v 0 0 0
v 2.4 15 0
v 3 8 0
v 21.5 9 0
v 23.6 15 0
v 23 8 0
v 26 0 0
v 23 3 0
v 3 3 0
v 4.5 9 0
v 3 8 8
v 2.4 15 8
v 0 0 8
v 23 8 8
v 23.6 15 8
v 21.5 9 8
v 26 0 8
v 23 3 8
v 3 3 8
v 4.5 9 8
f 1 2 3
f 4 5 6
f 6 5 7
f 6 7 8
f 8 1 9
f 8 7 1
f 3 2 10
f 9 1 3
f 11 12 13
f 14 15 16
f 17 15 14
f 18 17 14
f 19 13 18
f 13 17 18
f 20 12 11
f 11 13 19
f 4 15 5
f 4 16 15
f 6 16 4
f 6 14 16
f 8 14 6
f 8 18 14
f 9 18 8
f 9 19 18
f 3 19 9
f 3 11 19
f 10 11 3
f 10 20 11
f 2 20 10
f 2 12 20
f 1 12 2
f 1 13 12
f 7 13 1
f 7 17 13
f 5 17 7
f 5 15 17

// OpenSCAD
jaw_width = 20.0;
bump = 1.5;
bump_gap = 6.0;
wall = 3.0;
height = 8.0;
bite = 15.0;
$fn=30;
linear_extrude(height)
polygon([[0,0], 
         [jaw_width+wall*2, 0], 
         [jaw_width+wall*1.2, bite],
         [jaw_width+wall -bump, wall + bump_gap],
         [jaw_width+wall, wall + bump_gap-1],
         [jaw_width+wall, wall],
         [wall, wall],
         [wall, wall + bump_gap - 1],
         [wall + bump, wall + bump_gap],
         [wall*0.8, bite],
         [0,0]]);
         
